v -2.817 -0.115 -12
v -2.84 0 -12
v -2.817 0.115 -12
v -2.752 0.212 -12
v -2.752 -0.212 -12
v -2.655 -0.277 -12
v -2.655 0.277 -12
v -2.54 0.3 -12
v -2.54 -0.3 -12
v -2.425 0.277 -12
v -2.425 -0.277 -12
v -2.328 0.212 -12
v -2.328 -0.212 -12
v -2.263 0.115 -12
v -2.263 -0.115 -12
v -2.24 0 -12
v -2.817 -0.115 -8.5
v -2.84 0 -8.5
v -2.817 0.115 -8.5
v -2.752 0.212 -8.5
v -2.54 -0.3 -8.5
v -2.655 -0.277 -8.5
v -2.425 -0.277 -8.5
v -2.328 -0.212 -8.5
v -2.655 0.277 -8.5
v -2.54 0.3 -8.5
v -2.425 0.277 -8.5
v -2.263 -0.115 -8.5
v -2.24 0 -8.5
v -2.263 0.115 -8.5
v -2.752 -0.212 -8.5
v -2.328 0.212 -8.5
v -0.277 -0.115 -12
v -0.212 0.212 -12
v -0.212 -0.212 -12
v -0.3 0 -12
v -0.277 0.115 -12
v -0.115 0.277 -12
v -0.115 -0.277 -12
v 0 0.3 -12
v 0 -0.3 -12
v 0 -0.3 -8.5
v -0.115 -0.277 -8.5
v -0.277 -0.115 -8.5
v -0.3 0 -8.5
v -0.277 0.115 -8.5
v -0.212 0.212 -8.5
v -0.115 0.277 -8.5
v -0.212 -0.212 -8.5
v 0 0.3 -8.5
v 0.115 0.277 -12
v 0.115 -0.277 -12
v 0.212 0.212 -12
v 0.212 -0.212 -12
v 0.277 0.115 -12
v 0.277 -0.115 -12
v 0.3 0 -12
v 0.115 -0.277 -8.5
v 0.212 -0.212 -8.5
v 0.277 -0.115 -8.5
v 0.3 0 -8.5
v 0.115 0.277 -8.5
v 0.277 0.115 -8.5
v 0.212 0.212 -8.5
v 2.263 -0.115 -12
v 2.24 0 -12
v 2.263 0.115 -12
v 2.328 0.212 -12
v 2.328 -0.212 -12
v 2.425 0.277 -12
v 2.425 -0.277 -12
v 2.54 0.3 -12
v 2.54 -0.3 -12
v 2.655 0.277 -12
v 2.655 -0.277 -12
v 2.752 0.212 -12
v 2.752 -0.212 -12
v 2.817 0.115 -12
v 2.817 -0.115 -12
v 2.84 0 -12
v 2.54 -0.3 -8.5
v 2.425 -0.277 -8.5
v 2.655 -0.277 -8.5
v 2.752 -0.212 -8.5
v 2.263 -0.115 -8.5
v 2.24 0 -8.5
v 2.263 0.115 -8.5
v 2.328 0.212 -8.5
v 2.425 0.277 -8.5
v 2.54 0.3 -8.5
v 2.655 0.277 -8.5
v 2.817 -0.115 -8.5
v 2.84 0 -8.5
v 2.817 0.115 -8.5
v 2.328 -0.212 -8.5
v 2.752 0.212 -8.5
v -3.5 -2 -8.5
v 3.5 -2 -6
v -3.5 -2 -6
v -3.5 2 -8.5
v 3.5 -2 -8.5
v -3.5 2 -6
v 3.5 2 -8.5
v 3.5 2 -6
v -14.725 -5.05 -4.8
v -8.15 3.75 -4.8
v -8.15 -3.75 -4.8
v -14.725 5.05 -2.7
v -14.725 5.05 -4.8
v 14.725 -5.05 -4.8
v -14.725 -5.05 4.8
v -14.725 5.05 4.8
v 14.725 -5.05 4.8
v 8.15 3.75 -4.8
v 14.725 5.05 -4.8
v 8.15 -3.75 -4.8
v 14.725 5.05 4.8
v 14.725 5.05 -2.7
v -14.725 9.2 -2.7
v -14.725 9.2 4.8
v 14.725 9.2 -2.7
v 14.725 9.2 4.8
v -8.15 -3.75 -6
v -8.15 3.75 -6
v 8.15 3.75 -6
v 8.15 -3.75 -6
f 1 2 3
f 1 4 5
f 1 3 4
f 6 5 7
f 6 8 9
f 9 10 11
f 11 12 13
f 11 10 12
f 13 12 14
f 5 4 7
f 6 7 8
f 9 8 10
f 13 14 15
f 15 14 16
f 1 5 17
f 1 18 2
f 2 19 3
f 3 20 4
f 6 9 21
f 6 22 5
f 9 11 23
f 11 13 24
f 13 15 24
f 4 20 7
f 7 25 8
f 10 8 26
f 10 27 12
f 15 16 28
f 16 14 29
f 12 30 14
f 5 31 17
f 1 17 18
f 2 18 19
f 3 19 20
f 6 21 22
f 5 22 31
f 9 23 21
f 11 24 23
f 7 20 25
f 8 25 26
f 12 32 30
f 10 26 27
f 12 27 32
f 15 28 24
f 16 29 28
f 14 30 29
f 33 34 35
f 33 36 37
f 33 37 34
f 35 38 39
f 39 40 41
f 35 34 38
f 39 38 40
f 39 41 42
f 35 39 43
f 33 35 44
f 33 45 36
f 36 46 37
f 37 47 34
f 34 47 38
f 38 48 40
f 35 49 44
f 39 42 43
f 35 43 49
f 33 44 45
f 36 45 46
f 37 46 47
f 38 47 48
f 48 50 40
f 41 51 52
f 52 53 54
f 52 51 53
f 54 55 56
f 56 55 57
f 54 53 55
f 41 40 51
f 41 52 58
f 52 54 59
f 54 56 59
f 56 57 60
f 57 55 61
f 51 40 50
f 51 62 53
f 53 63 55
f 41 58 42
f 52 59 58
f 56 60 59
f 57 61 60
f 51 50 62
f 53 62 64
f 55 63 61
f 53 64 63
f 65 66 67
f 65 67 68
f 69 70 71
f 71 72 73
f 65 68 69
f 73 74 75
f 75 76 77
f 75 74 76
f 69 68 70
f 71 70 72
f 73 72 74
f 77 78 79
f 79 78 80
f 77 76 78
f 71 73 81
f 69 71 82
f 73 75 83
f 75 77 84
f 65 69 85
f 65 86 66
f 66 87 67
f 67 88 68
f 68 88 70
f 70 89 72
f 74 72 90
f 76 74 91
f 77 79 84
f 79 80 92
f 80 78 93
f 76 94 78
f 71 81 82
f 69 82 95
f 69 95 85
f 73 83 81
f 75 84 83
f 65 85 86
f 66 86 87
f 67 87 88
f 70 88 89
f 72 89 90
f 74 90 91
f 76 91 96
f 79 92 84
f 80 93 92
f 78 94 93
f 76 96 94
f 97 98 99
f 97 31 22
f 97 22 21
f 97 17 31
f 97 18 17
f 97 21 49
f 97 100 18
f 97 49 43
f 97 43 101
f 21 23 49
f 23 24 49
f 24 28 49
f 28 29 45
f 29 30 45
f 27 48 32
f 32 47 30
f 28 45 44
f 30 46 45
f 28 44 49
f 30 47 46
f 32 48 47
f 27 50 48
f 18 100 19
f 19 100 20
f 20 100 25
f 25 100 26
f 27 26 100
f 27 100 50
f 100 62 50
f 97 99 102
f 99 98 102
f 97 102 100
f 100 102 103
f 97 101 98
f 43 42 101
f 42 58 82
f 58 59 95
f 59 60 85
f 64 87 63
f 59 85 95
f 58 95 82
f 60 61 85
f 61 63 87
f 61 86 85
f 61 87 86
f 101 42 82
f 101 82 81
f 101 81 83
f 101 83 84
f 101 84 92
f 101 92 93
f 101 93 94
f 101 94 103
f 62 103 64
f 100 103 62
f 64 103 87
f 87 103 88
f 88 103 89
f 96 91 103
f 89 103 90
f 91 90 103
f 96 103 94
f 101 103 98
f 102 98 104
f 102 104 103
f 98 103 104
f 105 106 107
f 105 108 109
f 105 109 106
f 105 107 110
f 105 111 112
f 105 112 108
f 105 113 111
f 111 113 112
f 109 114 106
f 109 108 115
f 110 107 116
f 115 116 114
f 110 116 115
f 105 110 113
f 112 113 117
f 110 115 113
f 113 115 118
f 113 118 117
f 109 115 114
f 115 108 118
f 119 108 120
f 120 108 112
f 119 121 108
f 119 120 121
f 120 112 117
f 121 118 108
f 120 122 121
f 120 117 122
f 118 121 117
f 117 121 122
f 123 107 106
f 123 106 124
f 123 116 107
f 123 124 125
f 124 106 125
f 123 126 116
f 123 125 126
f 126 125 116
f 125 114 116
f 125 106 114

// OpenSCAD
// Sharp GP2Y0D413K0F Distance Sensor - OpenSCAD Model
// Based on datasheet outline dimensions (page 2)

// Main body case dimensions
body_length = 29.45;  // X direction
body_width = 10.1;    // Y direction
body_height = 9.6;    // Z direction

// Lens case protrusion
lens_case_height = 7.5;
lens_case_depth = 4.15;

// Light emitter (circular lens, left side)
emitter_lens_x = -1.5;  // Reference dimension from center
emitter_lens_y = 9.7;   // Reference dimension (front)
emitter_lens_radius = 2.0;  // Approximate circular opening

// Light detector (rectangular lens, right side)
detector_lens_x = 7.1;  // Reference dimension from center
detector_lens_y = 9.7;  // Reference dimension
detector_lens_width = 6.3;
detector_lens_height = 2.0;

// PWB (Printed circuit board)
pwb_length = 16.3;
pwb_width = 7.5;
pwb_thickness = 1.2;

// Connector pins
connector_pin_spacing = 2.54;
connector_pin_diameter = 0.6;
connector_pin_length = 3.5;

// ===== MAIN BODY CASE =====
module main_body() {
    // Main rectangular case body
    cube([body_length, body_width, body_height], center=true);
}

// ===== LENS CASE (Front protrusion) =====
module lens_case() {
    // Two-window lens case protrusion on front
    translate([0, (body_width/2 + lens_case_depth/2), (body_height/2 - lens_case_height/2)]) {
        cube([body_length, lens_case_depth, lens_case_height], center=true);
    }
}

// ===== LIGHT EMITTER LENS (Circular, Left) =====
module emitter_lens() {
    translate([emitter_lens_x, (body_width/2 + 1), (body_height/2 - 0.5)]) {
        cylinder(r=emitter_lens_radius, h=2, center=true, $fn=32);
    }
}

// ===== LIGHT DETECTOR LENS (Rectangular, Right) =====
module detector_lens() {
    translate([detector_lens_x, (body_width/2 + 1), (body_height/2 - 0.5)]) {
        cube([detector_lens_width, 2, detector_lens_height], center=true);
    }
}

// ===== PWB (Printed Circuit Board - Thin plate at bottom) =====
module pwb() {
    translate([0, 0, -(body_height/2 + pwb_thickness/2)]) {
        cube([pwb_length, pwb_width, pwb_thickness], center=true);
    }
}

// ===== 3-PIN CONNECTOR (Bottom side, simplified) =====
module connector() {
    // Connector body (simplified rectangular block)
    connector_body_length = 7.0;
    connector_body_width = 4.0;
    connector_body_height = 2.5;
    
    translate([0, 0, -(body_height/2 + pwb_thickness + connector_body_height/2)]) {
        cube([connector_body_length, connector_body_width, connector_body_height], center=true);
    }
    
    // Three pins representation
    pin_positions = [[-2.54, 0, 0], [0, 0, 0], [2.54, 0, 0]];
    
    for (pin_pos = pin_positions) {
        translate([pin_pos[0], pin_pos[1], -(body_height/2 + pwb_thickness + connector_body_height + connector_pin_length/2)]) {
            cylinder(r=connector_pin_diameter/2, h=connector_pin_length, center=true, $fn=16);
        }
    }
}

// ===== ASSEMBLY =====
module gp2y0d413k0f() {
    // Main body case
    main_body();
    
    // Lens case protrusion
    lens_case();
    
    // Light emitter lens (circular opening)
    %emitter_lens();
    
    // Light detector lens (rectangular opening)
    %detector_lens();
    
    // PWB at bottom
    pwb();
    
    // 3-pin connector
    connector();
}

// ===== RENDER =====
gp2y0d413k0f();

// Display coordinate origin and axes for reference
%translate([0,0,0]) {
    // X axis (red)
    color([1,0,0]) cylinder(r=0.3, h=15, center=true, $fn=8);
    // Y axis (green)
    color([0,1,0]) rotate([90,0,0]) cylinder(r=0.3, h=15, center=true, $fn=8);
    // Z axis (blue)
    color([0,0,1]) rotate([0,90,0]) cylinder(r=0.3, h=15, center=true, $fn=8);
}
